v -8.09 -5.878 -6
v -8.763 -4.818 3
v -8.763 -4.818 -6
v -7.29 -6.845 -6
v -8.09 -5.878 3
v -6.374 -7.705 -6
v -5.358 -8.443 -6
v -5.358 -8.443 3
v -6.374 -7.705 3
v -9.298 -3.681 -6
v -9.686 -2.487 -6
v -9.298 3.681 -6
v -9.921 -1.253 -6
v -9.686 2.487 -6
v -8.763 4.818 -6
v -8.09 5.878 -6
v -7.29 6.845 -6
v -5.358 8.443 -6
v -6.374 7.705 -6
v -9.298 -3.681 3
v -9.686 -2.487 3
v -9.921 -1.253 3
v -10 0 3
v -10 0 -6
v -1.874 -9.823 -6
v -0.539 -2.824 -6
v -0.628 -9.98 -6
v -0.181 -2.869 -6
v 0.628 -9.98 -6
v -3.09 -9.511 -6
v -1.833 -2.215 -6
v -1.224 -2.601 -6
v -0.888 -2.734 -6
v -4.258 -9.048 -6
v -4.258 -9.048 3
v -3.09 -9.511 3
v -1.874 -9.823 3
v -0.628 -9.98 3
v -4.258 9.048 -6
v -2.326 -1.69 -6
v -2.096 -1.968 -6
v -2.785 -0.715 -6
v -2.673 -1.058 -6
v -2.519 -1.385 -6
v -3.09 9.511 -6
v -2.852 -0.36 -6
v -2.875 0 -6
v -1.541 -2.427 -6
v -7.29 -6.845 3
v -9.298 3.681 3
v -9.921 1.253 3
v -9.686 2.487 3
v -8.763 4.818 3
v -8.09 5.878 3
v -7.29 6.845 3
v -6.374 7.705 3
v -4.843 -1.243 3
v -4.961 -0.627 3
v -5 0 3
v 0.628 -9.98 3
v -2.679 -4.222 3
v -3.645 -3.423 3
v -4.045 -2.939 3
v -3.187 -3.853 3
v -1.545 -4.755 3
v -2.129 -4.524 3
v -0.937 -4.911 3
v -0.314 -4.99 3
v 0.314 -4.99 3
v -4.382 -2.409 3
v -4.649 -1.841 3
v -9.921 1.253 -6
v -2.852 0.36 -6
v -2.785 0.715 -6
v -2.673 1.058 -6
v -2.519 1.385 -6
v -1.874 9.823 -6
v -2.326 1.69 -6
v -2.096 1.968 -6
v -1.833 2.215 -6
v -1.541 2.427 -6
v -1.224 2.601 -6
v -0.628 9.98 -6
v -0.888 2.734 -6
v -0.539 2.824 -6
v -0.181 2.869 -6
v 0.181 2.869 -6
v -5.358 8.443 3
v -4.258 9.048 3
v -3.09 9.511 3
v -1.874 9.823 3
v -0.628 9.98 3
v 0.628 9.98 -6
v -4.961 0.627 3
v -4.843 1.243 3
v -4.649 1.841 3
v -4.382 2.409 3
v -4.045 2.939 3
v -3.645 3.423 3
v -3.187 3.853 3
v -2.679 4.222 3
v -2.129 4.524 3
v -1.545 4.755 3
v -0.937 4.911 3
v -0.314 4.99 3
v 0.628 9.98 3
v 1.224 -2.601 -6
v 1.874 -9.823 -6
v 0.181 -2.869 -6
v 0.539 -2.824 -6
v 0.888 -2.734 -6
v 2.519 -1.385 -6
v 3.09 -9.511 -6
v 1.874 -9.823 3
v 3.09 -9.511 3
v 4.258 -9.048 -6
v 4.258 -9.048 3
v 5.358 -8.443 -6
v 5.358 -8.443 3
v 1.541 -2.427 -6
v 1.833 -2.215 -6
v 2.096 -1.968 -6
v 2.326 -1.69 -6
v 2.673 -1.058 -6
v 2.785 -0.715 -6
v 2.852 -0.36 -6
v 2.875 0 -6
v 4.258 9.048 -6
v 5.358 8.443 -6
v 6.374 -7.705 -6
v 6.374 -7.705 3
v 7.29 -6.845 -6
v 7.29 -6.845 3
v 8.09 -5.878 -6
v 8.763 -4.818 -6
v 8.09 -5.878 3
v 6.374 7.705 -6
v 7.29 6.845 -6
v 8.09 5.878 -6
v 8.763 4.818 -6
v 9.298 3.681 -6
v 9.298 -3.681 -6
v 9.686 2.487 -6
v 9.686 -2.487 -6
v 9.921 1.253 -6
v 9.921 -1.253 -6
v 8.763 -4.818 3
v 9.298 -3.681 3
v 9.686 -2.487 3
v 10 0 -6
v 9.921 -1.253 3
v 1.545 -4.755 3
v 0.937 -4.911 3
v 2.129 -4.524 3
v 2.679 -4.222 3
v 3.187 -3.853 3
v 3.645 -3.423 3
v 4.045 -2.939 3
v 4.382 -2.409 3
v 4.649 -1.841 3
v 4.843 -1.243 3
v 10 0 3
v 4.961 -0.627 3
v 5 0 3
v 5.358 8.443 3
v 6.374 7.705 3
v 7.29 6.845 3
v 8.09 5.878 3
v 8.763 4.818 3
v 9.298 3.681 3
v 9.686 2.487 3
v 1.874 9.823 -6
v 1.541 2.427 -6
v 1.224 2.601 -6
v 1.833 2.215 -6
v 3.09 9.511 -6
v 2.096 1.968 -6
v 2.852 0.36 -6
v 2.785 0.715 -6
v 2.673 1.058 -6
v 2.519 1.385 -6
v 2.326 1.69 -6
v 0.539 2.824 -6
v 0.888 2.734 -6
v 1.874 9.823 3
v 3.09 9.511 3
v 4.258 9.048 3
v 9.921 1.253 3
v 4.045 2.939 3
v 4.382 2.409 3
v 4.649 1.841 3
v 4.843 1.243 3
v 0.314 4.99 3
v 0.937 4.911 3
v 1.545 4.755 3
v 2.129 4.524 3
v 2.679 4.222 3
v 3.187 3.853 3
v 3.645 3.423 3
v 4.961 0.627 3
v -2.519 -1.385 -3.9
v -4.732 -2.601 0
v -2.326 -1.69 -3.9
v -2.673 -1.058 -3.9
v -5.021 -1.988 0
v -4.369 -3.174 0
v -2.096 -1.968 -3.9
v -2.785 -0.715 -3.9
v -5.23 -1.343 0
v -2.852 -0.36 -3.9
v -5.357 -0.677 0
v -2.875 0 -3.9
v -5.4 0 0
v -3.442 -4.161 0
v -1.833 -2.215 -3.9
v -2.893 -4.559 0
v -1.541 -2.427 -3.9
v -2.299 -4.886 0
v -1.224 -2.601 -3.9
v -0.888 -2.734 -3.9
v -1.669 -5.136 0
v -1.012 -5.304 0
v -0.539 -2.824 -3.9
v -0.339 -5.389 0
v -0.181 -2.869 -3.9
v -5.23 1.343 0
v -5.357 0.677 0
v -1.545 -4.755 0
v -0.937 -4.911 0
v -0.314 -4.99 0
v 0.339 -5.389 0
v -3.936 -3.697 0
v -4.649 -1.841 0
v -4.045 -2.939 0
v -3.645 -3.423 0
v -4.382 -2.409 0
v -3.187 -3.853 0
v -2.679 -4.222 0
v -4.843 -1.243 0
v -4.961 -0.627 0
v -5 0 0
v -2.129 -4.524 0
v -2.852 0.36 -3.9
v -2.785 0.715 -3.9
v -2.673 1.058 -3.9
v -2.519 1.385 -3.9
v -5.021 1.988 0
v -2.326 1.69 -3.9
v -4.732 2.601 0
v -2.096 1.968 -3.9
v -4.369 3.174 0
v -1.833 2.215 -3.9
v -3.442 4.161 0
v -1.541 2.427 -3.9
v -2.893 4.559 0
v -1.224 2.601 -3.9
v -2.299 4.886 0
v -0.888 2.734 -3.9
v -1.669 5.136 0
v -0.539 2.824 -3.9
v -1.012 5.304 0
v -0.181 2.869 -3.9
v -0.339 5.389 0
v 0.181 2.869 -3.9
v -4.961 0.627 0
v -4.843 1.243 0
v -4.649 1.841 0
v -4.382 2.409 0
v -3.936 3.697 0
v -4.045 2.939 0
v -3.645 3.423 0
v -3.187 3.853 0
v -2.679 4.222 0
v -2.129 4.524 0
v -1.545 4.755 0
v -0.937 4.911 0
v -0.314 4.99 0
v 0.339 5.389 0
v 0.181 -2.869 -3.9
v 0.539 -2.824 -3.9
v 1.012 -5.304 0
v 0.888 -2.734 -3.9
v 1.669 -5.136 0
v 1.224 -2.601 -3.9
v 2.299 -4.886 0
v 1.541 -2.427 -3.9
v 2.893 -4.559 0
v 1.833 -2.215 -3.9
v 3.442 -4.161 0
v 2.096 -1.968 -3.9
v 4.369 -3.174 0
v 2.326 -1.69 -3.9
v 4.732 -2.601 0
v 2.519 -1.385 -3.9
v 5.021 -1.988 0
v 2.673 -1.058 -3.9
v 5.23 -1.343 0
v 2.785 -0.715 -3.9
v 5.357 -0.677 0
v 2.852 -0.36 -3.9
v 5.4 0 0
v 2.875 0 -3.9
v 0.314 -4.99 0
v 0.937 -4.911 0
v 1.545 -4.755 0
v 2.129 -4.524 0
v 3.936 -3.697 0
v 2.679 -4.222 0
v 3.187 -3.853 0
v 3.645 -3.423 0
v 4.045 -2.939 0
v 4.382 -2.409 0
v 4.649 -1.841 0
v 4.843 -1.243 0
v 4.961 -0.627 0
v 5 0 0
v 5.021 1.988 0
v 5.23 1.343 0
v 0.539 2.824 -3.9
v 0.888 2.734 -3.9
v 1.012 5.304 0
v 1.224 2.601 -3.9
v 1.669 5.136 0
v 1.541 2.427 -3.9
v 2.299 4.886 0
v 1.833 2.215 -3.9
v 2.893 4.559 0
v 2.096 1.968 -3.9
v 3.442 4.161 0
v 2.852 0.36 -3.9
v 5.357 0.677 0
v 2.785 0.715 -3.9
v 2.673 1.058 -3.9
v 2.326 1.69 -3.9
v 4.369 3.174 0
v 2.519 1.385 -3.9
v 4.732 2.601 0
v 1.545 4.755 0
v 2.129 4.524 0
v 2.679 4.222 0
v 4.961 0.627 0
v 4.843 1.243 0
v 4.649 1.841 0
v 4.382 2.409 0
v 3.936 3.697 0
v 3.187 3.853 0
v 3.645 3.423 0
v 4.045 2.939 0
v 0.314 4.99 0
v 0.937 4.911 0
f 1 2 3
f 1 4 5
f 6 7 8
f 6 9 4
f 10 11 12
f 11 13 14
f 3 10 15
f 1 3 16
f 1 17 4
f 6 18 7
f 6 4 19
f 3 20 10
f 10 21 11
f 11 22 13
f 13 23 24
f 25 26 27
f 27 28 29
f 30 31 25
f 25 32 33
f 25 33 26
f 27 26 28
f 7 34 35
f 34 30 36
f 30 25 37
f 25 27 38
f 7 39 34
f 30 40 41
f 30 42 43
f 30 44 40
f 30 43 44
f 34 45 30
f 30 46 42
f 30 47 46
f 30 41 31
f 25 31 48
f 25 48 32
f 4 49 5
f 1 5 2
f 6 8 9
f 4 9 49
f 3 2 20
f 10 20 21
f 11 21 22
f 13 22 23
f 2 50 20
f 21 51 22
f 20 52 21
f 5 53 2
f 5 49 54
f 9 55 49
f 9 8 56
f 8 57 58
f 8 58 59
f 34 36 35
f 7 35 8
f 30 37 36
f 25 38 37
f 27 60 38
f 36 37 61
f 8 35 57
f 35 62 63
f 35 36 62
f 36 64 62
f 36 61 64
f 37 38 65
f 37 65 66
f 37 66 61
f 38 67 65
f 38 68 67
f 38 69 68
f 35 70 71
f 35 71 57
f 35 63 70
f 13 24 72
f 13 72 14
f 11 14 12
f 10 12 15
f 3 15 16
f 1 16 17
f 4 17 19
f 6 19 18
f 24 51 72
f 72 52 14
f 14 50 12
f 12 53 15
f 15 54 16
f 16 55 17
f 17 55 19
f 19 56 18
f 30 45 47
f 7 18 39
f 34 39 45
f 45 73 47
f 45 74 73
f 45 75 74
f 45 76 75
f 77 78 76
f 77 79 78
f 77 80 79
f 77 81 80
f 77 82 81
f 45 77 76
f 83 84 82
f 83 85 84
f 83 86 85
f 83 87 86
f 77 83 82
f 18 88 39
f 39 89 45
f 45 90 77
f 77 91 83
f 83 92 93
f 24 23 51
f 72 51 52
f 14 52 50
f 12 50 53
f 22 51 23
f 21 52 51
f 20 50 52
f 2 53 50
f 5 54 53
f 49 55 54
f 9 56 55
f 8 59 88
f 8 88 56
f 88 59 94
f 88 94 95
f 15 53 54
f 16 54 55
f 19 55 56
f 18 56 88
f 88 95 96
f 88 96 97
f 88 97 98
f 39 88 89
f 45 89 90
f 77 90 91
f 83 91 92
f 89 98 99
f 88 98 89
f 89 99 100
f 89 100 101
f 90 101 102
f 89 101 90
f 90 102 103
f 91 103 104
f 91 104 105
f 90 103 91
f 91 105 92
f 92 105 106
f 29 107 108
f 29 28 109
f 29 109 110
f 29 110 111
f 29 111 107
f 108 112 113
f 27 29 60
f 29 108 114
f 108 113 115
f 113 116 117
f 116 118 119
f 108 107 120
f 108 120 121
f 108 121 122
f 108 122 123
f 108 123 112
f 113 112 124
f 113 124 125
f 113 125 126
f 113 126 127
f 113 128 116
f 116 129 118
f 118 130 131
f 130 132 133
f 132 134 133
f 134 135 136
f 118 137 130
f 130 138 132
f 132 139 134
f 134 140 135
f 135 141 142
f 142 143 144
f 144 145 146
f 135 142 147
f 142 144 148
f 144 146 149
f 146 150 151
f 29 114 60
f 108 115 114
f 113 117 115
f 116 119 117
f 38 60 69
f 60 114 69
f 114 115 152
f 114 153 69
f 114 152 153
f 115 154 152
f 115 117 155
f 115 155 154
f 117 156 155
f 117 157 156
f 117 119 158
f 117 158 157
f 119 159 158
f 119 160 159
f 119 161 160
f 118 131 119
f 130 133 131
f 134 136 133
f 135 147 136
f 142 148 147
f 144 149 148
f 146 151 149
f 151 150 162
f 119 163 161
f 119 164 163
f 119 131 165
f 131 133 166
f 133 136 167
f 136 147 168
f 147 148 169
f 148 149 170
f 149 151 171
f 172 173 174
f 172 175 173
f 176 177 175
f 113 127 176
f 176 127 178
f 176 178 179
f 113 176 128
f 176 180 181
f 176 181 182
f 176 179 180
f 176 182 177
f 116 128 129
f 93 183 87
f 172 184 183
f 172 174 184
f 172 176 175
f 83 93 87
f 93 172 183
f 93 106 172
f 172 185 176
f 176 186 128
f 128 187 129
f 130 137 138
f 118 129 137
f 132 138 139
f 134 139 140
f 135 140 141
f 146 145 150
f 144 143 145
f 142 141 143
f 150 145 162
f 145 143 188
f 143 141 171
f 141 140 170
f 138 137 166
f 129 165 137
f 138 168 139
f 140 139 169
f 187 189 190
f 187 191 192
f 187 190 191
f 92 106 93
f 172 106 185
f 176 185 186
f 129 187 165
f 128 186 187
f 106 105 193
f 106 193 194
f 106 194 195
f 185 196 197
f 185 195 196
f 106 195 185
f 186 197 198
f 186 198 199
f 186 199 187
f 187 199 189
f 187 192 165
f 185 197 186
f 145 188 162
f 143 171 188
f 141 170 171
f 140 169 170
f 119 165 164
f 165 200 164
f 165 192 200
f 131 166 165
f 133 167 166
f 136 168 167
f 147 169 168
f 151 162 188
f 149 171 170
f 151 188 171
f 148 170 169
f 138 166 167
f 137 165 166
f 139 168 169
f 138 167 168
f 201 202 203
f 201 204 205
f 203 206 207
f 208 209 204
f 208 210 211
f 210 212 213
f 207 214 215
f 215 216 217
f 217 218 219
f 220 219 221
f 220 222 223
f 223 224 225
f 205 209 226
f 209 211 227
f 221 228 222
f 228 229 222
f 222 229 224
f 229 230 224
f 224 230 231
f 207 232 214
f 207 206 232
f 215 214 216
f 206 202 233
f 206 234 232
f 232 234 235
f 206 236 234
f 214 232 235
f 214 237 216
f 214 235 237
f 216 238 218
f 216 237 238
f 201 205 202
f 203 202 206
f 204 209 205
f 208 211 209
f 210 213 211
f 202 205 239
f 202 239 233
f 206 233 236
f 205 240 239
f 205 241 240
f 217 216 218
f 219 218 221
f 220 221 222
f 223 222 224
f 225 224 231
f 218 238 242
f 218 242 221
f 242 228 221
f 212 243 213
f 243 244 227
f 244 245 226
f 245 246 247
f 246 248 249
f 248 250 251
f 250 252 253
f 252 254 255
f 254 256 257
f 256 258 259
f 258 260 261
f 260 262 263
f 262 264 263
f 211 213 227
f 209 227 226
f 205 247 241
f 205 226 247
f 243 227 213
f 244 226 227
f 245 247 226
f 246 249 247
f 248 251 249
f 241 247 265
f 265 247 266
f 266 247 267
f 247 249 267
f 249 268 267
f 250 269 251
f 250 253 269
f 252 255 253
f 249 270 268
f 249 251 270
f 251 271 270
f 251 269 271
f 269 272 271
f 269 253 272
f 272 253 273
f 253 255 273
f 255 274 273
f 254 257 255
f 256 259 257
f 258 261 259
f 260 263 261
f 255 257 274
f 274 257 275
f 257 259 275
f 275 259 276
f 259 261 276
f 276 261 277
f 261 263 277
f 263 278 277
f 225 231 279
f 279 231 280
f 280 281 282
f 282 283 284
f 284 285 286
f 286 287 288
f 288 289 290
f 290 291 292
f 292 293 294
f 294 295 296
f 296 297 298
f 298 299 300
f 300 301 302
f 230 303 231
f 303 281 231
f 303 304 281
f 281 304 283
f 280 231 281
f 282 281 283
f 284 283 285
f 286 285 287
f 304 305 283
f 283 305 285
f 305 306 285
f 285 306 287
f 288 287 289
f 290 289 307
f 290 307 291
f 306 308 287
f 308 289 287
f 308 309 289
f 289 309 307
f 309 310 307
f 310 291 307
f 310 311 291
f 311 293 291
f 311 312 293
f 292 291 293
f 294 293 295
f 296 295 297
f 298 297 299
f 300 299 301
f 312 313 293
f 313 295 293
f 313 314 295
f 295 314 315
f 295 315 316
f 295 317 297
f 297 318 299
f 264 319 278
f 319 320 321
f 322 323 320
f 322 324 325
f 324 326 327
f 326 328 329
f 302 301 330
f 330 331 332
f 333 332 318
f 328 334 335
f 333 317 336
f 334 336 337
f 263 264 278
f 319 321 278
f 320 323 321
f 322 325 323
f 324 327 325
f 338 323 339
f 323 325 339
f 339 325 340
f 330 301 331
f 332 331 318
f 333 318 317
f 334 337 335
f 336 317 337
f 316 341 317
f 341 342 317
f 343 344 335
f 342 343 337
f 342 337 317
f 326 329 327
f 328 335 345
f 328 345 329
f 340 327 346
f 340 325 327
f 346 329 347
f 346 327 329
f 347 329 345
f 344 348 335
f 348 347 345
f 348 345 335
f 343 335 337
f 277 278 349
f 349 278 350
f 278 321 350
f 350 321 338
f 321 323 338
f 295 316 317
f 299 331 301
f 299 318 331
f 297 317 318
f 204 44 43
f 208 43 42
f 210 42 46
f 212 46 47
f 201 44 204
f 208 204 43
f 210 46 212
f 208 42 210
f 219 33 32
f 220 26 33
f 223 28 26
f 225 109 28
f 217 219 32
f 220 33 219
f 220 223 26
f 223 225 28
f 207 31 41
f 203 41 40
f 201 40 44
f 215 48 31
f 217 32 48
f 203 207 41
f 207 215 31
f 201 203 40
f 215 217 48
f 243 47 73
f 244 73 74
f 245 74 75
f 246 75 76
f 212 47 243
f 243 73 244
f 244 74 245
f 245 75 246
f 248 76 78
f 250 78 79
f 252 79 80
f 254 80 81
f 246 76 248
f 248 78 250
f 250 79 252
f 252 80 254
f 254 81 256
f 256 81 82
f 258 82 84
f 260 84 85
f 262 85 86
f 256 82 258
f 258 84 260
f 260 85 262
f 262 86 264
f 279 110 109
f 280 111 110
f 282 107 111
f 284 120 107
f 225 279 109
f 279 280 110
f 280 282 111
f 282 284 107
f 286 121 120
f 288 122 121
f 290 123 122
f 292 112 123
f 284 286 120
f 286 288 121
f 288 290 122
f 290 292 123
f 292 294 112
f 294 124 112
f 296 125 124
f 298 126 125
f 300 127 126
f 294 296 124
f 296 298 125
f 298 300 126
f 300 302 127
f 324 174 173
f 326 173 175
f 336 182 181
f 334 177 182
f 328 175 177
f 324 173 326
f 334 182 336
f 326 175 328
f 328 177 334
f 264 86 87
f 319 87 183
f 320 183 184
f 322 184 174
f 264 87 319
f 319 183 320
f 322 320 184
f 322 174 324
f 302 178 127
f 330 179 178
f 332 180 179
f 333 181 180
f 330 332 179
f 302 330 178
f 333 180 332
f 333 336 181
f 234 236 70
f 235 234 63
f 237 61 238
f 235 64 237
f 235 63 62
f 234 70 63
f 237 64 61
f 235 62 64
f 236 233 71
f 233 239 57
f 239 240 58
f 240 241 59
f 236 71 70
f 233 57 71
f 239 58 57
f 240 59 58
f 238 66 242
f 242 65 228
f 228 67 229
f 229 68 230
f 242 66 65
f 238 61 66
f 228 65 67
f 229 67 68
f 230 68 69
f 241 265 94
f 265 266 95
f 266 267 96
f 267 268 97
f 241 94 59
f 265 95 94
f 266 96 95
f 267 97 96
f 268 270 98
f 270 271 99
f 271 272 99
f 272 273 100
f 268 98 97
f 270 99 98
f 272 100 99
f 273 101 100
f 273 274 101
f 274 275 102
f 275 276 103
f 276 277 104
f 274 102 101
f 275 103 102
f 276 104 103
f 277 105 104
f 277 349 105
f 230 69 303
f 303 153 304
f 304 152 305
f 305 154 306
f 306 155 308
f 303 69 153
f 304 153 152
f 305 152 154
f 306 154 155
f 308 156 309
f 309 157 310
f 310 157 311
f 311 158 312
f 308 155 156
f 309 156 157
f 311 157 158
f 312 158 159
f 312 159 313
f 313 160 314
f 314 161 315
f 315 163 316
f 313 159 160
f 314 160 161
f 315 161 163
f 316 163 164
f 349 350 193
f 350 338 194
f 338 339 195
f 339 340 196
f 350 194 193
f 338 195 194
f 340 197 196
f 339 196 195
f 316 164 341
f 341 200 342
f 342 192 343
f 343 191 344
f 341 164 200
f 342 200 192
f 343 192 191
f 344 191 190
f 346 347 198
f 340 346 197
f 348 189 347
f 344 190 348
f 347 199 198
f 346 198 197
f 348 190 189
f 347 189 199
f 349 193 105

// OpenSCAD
$fn = 50;


difference() {
	union() {
		translate(v = [0, 0, -6.0000000000]) {
			cylinder(h = 9, r = 10.0000000000);
		}
		#translate(v = [0, 0, -9.0000000000]) {
			cylinder(h = 9, r = 2.8750000000);
		}
	}
	union() {
		translate(v = [0, 0, 0]) {
			rotate(a = [0, 0, 0]) {
				difference() {
					union() {
						translate(v = [0, 0, -9.0000000000]) {
							cylinder(h = 9, r = 2.6000000000);
						}
						translate(v = [0, 0, -3.9000000000]) {
							cylinder(h = 3.9000000000, r1 = 2.8750000000, r2 = 5.4000000000);
						}
						translate(v = [0, 0, -9.0000000000]) {
							cylinder(h = 9, r = 2.8750000000);
						}
						translate(v = [0, 0, -9.0000000000]) {
							cylinder(h = 9, r = 2.6000000000);
						}
					}
					union();
				}
			}
		}
		#cylinder(h = 3, r = 5.0000000000);
	}
}
